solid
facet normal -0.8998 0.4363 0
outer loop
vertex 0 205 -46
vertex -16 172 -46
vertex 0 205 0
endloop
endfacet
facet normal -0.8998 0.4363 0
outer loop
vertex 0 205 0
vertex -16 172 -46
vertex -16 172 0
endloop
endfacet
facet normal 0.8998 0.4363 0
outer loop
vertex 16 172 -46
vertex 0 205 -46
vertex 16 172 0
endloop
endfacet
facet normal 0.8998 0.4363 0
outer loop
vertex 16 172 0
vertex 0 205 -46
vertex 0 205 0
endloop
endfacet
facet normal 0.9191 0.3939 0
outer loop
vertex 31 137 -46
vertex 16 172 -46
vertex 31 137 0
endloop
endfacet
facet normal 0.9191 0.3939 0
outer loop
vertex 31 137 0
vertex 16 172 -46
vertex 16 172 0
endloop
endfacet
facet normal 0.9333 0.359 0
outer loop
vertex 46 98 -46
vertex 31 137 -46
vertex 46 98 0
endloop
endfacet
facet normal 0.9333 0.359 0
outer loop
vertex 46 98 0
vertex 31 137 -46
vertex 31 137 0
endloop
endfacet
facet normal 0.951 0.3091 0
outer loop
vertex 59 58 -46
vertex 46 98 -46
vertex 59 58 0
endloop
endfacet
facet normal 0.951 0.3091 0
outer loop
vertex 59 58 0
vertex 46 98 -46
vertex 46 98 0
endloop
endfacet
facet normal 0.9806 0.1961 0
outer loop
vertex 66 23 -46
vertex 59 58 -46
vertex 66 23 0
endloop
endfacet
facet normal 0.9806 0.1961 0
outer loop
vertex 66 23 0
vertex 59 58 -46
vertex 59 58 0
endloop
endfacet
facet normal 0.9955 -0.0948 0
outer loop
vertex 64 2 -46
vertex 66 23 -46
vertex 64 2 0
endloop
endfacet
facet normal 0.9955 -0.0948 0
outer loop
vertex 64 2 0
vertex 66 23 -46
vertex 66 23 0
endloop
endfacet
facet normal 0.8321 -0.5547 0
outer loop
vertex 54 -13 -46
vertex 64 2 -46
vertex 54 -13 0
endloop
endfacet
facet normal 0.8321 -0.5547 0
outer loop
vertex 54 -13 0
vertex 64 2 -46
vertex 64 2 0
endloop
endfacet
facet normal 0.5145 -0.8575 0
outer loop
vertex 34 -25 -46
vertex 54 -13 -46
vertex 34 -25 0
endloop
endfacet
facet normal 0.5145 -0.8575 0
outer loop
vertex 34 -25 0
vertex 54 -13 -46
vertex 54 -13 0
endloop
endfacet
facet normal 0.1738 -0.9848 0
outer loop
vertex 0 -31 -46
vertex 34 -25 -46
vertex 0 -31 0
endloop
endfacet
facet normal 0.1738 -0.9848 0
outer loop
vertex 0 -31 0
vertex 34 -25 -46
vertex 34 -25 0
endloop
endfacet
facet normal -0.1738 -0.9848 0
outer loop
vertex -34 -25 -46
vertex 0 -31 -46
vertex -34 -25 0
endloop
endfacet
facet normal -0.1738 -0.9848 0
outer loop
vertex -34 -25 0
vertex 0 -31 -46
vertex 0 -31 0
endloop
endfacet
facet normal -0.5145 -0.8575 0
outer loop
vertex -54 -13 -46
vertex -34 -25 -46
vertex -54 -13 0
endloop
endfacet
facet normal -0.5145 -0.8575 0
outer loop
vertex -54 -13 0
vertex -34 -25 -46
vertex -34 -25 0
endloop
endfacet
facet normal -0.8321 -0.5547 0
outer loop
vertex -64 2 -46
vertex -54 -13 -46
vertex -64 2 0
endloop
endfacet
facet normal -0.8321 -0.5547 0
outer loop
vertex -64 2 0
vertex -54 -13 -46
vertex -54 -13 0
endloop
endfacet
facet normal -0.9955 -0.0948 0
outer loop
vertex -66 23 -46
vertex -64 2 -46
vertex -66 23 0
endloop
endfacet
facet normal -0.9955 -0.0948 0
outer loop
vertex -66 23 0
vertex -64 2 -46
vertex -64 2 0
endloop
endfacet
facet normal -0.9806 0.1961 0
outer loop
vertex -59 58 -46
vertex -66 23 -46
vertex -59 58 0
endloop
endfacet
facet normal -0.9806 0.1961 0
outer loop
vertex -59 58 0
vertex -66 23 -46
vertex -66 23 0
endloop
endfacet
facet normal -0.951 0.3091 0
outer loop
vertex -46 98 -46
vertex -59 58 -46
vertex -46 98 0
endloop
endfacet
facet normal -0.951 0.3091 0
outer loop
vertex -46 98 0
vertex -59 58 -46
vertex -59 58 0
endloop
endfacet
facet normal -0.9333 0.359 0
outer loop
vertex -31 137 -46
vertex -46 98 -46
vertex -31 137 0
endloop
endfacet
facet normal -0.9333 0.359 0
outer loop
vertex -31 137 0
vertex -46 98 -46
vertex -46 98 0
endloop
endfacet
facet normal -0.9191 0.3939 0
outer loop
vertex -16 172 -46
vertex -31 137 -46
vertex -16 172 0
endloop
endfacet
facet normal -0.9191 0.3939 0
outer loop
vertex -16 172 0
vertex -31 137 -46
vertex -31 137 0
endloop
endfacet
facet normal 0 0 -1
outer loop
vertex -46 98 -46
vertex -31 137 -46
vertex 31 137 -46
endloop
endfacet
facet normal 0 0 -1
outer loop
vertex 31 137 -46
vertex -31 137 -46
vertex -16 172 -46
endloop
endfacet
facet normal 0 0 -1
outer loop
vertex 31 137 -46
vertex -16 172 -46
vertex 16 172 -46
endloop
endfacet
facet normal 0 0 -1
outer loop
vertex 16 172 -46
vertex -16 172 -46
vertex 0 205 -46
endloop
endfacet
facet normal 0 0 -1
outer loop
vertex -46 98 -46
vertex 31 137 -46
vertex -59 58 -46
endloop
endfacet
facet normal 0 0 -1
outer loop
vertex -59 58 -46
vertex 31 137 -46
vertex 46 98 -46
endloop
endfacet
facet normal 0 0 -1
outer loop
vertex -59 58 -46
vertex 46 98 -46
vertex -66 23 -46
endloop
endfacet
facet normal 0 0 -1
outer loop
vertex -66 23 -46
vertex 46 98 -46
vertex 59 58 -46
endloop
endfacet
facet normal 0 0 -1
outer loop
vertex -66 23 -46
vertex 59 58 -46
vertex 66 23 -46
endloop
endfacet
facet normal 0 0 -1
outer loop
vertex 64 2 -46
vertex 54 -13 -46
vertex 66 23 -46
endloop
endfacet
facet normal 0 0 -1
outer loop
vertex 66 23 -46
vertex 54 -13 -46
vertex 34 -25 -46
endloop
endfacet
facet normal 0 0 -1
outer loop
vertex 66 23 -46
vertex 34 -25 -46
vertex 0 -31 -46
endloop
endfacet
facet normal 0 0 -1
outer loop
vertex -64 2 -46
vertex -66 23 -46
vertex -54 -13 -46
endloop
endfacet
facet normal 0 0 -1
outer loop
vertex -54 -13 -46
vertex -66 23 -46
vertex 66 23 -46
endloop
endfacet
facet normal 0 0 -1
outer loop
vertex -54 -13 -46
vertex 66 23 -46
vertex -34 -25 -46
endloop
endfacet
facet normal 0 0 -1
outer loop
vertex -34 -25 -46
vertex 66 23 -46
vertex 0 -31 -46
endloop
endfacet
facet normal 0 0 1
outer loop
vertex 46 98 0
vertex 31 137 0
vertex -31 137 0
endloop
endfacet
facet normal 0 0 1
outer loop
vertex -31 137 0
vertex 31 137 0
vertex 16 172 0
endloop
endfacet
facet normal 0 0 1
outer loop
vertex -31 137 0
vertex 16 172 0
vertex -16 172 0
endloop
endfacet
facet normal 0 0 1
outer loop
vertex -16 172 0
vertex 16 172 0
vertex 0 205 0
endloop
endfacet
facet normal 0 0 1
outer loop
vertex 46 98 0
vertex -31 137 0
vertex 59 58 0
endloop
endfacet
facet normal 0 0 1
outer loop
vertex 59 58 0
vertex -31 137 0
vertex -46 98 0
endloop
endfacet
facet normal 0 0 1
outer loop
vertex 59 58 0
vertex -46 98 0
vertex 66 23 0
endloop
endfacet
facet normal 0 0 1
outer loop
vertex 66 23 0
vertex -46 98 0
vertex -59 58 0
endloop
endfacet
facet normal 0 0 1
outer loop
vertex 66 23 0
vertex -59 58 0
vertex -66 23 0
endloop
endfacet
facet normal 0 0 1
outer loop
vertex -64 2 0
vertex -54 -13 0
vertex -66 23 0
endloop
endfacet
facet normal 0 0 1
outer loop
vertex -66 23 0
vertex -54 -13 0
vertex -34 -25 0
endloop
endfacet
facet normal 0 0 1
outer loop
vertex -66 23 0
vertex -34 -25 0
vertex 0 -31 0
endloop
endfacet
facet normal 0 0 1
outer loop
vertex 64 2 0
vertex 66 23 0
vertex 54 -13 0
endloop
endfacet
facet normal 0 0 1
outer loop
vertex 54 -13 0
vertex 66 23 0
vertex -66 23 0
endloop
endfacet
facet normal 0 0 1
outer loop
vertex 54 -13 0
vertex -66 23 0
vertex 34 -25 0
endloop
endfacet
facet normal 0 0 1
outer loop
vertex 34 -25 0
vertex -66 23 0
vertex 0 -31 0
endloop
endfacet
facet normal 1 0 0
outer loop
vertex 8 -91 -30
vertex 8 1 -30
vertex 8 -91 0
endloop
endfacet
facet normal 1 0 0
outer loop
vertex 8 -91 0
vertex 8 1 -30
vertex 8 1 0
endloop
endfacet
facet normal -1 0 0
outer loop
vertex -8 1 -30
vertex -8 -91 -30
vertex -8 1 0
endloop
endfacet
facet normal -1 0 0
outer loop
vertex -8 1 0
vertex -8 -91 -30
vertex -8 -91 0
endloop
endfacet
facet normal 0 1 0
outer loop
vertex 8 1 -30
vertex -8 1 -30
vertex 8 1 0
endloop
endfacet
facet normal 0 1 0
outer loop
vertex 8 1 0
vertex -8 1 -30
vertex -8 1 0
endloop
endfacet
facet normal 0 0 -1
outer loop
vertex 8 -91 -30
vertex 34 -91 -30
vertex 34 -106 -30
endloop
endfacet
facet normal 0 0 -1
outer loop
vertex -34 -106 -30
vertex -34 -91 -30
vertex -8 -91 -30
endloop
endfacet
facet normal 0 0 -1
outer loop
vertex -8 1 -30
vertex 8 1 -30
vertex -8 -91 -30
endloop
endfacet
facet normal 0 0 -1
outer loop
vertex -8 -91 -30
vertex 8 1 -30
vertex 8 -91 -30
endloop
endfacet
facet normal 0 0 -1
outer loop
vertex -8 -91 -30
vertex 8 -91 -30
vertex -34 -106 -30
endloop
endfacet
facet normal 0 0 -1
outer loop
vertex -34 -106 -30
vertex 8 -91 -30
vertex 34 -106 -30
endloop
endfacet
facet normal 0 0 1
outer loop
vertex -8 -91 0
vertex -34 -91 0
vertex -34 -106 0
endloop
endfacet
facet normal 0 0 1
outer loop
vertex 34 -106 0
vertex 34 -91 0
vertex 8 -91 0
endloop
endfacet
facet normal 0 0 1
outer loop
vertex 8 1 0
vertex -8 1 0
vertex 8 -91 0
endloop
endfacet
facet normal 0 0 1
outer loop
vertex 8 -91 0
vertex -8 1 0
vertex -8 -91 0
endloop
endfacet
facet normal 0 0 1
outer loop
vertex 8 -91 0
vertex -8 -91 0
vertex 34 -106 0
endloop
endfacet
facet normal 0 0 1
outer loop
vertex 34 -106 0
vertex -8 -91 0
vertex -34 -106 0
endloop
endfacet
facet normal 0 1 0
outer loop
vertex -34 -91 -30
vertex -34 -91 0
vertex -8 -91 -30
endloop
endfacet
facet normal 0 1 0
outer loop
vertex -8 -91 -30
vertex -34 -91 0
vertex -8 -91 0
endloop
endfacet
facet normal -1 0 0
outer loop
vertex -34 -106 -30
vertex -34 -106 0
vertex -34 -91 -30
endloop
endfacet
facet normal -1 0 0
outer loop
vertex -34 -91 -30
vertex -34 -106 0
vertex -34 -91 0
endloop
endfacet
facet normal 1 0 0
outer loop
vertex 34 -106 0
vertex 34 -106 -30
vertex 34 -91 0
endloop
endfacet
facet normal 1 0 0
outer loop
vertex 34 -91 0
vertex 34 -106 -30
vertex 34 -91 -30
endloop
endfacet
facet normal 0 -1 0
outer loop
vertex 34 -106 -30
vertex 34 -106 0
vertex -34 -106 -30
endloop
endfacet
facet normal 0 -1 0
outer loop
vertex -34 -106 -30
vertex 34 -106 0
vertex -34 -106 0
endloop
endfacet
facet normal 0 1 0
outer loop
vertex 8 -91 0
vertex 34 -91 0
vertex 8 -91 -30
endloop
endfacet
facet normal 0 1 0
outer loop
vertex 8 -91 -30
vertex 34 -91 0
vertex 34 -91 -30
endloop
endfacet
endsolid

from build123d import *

# Parameters (mm, degrees)
SKETCH_2_W      = 16
SKETCH_2_H      = 92
EXTRUDE_2_DEPTH = 30
EXTRUDE_3_DEPTH = 46
SKETCH_4_W      = 68
SKETCH_4_H      = 30
EXTRUDE_4_DEPTH = 15


with BuildPart() as part:
    # 草图2 → 凸台-拉伸2 (new body)
    with BuildSketch(Plane.XY):
        with Locations((0, -45)):
            Rectangle(SKETCH_2_W, SKETCH_2_H)
    extrude(amount=-EXTRUDE_2_DEPTH)

    # 草图4 → 凸台-拉伸4 (add)
    with BuildSketch(Plane.XZ.offset(91)):
        with Locations((0, -15)):
            Rectangle(SKETCH_4_W, SKETCH_4_H)
    extrude(amount=EXTRUDE_4_DEPTH)


with BuildPart() as body_2:
    # 草图3 → 凸台-拉伸3 (new body)
    with BuildSketch(Plane.XY):
        Polygon((0, 205), (16, 172), (31, 137), (46, 98), (59, 58), (66, 23), (64, 2), (54, -13), (34, -25), (0, -31), (-34, -25), (-54, -13), (-64, 2), (-66, 23), (-59, 58), (-46, 98), (-31, 137), (-16, 172), align=None)
    extrude(amount=-EXTRUDE_3_DEPTH)


solid = Compound([part.part, body_2.part])
